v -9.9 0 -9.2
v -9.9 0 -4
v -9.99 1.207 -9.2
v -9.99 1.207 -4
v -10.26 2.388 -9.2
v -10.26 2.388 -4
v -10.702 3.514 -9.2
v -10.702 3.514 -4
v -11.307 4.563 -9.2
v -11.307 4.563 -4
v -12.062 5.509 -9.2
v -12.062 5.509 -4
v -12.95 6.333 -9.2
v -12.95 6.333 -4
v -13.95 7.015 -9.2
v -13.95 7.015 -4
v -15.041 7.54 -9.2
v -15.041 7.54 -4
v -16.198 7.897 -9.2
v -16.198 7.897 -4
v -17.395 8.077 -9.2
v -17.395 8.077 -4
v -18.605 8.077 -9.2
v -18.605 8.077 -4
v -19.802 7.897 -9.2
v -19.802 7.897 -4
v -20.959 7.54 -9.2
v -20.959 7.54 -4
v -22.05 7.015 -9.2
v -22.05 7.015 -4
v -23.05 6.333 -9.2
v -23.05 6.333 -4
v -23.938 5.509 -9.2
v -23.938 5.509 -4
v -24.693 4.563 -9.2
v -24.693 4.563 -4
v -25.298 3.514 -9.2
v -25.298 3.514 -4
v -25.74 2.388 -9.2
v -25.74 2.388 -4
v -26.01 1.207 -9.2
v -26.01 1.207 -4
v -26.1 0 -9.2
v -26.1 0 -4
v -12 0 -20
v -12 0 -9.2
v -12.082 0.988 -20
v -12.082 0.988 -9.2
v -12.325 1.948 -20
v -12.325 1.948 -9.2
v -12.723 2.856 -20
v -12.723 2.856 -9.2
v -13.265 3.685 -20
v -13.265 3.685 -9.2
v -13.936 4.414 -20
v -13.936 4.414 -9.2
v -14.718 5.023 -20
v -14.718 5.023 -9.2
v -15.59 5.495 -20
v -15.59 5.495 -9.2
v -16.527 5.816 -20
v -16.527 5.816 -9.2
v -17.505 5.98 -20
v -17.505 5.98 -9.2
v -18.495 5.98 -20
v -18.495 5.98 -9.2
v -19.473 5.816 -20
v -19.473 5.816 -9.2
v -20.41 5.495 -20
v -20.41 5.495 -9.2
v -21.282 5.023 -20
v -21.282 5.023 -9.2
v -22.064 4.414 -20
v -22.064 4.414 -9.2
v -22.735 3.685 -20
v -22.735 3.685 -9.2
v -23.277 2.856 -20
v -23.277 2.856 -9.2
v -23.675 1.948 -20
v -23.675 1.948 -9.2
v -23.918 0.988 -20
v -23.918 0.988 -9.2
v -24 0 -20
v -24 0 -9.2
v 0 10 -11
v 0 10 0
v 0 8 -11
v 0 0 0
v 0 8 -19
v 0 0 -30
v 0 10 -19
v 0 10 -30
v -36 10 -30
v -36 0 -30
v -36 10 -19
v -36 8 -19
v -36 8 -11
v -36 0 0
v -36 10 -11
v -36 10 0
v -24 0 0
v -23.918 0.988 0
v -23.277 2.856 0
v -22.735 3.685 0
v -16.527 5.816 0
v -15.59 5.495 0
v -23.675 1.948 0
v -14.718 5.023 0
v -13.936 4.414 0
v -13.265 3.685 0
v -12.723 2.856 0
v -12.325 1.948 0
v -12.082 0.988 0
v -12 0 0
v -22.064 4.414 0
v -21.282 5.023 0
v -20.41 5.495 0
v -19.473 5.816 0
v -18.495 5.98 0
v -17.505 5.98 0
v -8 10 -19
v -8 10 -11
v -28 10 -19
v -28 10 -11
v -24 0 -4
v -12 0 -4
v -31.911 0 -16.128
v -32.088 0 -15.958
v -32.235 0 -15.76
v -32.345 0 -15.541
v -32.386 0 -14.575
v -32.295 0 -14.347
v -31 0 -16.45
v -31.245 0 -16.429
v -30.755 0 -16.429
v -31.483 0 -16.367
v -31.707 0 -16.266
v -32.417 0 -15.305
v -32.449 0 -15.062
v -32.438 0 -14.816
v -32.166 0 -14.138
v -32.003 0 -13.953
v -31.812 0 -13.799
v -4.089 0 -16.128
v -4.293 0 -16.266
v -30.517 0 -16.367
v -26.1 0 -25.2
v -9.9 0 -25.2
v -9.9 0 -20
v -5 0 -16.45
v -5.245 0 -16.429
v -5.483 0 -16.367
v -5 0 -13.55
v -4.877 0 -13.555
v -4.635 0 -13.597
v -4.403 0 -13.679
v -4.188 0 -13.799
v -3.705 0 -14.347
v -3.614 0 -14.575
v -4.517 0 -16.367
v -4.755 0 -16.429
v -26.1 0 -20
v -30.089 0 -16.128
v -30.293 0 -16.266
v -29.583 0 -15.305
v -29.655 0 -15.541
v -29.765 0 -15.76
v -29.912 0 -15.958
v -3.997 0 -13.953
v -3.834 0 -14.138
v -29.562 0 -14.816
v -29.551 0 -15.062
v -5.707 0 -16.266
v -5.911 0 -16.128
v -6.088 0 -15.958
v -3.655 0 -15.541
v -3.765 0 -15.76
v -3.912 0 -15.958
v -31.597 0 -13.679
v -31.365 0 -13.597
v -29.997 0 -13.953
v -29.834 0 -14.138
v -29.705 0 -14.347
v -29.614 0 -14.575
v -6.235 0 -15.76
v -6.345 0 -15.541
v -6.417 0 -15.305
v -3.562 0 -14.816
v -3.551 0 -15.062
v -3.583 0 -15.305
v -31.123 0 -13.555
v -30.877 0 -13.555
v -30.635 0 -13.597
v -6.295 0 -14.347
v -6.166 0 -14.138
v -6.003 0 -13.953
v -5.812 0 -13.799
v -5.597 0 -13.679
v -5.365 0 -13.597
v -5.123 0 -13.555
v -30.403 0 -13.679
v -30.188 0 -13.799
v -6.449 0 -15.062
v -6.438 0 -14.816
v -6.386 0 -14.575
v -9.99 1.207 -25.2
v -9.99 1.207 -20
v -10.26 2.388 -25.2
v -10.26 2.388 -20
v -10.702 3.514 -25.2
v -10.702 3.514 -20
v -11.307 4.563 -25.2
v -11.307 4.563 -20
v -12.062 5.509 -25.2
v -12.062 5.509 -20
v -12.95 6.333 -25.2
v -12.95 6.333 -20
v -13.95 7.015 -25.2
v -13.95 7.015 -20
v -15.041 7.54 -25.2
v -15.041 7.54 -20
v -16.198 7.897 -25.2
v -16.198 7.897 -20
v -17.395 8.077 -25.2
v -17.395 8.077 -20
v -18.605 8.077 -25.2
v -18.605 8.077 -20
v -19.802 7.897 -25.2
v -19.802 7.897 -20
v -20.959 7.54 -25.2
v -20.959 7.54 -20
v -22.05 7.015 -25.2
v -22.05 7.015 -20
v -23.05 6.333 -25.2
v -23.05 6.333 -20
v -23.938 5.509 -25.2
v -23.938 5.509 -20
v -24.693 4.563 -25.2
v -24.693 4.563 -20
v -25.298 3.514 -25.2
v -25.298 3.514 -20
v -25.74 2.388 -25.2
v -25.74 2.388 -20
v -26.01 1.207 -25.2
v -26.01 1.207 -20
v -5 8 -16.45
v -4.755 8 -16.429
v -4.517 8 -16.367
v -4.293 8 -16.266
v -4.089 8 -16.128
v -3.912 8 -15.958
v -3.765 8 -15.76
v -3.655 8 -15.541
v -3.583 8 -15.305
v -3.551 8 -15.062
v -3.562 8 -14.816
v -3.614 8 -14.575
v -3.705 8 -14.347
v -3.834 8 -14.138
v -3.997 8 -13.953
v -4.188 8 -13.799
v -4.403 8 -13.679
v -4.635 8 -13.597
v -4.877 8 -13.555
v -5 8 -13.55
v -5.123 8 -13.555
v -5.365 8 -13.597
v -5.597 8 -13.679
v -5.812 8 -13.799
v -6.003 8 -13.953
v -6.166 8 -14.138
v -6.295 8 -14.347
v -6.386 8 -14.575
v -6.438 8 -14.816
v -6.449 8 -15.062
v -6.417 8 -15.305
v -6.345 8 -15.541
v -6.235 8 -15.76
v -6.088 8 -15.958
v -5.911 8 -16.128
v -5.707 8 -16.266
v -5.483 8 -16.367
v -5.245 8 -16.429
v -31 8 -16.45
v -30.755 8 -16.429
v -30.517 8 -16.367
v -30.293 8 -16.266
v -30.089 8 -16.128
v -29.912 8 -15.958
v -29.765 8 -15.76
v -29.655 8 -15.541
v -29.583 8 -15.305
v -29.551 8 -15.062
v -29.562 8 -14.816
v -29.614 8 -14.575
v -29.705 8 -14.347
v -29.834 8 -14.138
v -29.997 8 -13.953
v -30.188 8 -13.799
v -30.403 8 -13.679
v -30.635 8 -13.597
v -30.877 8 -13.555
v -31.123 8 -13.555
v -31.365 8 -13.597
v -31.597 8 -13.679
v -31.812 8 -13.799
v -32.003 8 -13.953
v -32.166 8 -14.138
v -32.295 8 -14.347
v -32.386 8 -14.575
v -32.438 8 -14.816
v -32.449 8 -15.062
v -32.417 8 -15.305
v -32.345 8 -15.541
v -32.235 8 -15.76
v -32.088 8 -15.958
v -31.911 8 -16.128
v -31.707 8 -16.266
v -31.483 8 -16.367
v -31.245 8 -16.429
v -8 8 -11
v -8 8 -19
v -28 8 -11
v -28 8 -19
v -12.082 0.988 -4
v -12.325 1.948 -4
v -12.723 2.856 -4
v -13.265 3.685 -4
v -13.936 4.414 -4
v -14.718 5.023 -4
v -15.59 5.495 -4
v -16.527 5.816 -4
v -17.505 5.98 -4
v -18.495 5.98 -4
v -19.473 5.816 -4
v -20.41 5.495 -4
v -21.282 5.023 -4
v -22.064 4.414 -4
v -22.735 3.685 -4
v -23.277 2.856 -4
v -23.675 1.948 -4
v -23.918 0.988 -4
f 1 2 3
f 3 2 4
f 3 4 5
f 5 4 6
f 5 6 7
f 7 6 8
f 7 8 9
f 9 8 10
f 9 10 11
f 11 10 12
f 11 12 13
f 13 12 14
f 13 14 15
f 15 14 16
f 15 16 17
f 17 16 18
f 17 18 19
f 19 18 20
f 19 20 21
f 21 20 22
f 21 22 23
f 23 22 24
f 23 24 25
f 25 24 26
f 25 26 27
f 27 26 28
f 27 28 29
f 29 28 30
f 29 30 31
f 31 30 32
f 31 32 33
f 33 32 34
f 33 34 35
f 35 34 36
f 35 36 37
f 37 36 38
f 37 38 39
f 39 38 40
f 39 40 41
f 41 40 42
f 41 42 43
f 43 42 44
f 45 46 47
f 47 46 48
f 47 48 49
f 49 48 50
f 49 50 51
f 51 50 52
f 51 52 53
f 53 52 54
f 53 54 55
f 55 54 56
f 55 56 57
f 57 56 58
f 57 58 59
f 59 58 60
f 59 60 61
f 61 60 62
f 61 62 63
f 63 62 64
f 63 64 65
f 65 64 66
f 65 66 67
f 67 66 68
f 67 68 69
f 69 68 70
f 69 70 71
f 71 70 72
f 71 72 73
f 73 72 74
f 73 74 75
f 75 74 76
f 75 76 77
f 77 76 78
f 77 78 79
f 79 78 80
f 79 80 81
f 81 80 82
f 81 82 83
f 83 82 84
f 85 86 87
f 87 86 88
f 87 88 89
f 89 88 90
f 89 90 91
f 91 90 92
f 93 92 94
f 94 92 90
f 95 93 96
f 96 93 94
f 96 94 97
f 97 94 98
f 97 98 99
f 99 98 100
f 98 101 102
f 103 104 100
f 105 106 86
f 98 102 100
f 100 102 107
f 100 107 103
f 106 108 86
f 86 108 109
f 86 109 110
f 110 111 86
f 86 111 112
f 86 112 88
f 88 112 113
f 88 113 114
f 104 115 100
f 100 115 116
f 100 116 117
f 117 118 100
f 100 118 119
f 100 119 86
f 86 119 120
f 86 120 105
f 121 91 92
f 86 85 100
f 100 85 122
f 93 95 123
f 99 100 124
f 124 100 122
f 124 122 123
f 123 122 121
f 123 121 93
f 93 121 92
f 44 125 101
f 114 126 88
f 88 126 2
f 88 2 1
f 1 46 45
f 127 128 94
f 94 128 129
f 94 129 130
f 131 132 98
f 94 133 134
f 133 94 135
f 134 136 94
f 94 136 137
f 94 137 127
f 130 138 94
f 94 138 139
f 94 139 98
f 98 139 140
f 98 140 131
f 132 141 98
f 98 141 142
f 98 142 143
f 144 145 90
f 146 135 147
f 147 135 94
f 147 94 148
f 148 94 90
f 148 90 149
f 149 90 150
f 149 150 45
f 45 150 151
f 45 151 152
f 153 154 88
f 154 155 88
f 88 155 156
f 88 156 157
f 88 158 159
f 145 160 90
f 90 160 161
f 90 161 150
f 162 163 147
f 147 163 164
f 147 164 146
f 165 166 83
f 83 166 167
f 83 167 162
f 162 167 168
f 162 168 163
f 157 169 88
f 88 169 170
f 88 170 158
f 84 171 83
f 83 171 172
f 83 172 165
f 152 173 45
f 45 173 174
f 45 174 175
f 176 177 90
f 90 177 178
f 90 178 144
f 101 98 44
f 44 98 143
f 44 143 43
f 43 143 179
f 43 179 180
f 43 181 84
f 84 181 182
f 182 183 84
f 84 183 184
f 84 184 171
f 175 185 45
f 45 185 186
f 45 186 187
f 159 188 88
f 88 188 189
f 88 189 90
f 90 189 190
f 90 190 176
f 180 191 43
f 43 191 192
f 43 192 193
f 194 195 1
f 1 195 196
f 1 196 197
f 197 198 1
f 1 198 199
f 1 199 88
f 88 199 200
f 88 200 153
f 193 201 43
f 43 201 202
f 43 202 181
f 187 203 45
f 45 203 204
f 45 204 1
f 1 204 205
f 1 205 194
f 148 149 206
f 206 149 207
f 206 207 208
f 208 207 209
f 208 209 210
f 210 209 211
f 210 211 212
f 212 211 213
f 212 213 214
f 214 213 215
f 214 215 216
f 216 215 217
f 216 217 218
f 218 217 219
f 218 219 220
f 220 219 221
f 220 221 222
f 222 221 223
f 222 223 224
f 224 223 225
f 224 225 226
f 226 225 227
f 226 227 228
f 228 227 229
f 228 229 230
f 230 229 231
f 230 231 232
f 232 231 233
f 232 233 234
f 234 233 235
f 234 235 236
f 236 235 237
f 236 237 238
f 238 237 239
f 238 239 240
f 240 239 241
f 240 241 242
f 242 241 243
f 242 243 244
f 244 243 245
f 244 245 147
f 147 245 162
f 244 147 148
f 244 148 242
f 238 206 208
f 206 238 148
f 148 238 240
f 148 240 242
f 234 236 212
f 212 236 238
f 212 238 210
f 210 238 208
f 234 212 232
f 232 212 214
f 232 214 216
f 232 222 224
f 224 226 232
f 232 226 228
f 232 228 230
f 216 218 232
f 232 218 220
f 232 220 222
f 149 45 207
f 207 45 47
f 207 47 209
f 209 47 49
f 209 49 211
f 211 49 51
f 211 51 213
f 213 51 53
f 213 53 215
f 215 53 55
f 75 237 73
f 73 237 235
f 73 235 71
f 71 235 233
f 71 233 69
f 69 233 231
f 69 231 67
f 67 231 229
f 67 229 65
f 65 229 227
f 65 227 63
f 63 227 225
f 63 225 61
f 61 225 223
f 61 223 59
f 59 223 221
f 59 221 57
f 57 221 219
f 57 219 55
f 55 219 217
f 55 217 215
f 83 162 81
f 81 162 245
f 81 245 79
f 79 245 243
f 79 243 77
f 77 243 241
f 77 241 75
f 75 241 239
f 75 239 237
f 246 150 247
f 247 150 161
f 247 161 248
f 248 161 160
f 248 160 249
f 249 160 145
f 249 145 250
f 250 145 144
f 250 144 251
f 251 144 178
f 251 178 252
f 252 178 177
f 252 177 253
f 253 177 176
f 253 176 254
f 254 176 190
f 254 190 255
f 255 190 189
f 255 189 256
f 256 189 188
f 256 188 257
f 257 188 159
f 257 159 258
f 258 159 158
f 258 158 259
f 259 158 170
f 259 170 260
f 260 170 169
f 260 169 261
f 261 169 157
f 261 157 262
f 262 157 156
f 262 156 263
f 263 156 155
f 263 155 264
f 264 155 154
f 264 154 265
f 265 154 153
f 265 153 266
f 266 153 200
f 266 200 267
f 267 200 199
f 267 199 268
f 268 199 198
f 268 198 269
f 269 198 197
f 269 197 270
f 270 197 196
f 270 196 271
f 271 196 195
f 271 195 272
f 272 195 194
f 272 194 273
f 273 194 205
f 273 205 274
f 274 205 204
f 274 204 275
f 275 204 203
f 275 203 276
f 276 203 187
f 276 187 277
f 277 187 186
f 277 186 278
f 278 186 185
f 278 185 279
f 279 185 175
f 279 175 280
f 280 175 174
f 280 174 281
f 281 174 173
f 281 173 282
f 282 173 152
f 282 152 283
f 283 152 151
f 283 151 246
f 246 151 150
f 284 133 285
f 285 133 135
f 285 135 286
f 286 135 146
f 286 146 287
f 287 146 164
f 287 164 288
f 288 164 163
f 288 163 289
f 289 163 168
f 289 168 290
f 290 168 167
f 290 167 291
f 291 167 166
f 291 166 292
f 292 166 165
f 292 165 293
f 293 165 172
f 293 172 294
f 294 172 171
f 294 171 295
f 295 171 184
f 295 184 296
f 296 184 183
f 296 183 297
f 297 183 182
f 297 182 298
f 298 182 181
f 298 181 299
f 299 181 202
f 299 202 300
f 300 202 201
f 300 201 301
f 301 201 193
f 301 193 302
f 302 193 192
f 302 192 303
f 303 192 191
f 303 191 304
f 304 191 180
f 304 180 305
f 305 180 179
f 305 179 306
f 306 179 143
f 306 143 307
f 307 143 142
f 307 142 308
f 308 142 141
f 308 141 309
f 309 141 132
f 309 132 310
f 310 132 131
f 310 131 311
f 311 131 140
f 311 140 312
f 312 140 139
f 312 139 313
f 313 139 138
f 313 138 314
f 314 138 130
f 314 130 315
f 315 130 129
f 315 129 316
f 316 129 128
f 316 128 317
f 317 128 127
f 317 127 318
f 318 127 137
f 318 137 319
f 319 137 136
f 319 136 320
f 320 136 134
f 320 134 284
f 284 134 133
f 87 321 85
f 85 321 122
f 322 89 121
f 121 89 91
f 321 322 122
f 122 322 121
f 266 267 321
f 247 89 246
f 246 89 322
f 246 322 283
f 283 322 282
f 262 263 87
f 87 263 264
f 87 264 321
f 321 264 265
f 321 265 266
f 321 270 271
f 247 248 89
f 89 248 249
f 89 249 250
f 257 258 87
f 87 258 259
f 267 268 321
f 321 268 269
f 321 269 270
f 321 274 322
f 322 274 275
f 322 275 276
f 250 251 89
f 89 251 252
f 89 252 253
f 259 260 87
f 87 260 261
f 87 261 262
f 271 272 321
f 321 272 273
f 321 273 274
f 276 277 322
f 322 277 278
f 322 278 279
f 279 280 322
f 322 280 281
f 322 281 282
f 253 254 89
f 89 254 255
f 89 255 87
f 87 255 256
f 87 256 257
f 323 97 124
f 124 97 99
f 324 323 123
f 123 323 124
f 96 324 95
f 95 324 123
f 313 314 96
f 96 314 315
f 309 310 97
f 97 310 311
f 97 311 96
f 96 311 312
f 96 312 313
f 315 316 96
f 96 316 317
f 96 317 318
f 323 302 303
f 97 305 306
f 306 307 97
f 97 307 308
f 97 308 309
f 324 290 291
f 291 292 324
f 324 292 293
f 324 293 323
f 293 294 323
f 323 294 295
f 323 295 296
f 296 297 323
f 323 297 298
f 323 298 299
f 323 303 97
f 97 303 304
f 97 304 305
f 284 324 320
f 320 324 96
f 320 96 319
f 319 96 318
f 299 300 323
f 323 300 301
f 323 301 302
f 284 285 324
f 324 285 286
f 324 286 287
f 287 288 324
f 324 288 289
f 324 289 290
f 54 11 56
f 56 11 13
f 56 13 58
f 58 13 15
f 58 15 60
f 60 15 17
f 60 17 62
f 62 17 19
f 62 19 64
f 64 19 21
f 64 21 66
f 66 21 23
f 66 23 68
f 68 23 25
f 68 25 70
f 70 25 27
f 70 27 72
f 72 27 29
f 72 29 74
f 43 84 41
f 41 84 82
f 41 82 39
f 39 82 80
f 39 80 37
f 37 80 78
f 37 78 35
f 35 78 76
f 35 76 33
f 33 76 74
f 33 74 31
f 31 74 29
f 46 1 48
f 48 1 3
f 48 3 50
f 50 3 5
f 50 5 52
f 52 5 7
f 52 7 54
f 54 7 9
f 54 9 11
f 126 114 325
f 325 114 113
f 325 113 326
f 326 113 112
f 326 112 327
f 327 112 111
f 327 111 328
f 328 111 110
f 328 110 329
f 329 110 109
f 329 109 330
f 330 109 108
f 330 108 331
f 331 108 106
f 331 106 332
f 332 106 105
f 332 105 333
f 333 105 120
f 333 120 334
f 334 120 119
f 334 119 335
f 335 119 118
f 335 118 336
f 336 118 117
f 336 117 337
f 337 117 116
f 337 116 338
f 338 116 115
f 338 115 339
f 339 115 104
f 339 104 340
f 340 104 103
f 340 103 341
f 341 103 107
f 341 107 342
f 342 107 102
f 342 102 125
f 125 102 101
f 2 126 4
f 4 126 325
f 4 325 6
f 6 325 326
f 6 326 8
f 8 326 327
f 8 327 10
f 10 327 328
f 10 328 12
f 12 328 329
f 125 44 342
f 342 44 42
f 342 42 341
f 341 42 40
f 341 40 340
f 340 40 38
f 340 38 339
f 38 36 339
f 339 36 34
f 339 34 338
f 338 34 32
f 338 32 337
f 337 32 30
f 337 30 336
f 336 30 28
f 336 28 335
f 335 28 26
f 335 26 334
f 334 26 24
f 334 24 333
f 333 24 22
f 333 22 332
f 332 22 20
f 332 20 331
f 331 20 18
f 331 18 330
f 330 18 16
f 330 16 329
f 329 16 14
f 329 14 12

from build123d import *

# Parameters (mm, degrees)
SKETCH_2_W          = 36
SKETCH_2_H          = 30
EXTRUDE_1_DEPTH     = 10
SKETCH_3_R          = 6
CUT_EXTRUDE_1_DEPTH = 20
SKETCH_4_R          = 8.1
CUT_EXTRUDE_2_DEPTH = 5.2
SKETCH_5_R          = 1.45
CUT_EXTRUDE_3_DEPTH = 8
SKETCH_6_W          = 8
SKETCH_6_H          = 8
CUT_EXTRUDE_4_DEPTH = 8
CUT_EXTRUDE_5_DEPTH = 9.2
EXTRUDE_2_DEPTH     = 4


with BuildPart() as part:
    # 草图2 → 凸台-拉伸1 (new body)
    with BuildSketch(Plane(origin=(0, 0, 0), x_dir=(1, 0, 0), z_dir=(0, 1, 0))):
        with Locations((-18, 15)):
            Rectangle(SKETCH_2_W, SKETCH_2_H)
    extrude(amount=EXTRUDE_1_DEPTH)

    # 草图3 → 切除-拉伸1 (cut)
    with BuildSketch(Plane.XY):
        with Locations((-18, 0)):
            Circle(SKETCH_3_R)
    extrude(amount=-CUT_EXTRUDE_1_DEPTH, mode=Mode.SUBTRACT)

    # 草图4 → 切除-拉伸2 (cut)
    with BuildSketch(Plane.XY.offset(-20)):
        with Locations((-18, 0)):
            Circle(SKETCH_4_R)
    extrude(amount=-CUT_EXTRUDE_2_DEPTH, mode=Mode.SUBTRACT)

    # 草图5 → 切除-拉伸3 (cut)
    with BuildSketch(Plane.XZ):
        with Locations(Location((-31, -15, 0), (0, 0, 270))):
            Circle(SKETCH_5_R)
        with Locations(Location((-5, -15, 0), (0, 0, 90))):
            Circle(SKETCH_5_R)
    extrude(amount=-CUT_EXTRUDE_3_DEPTH, mode=Mode.SUBTRACT)

    # 草图6 → 切除-拉伸4 (cut)
    with BuildSketch(Plane.XZ.offset(-8)):
        with Locations((-32, -15)):
            Rectangle(SKETCH_6_W, SKETCH_6_H)
        with Locations((-4, -15)):
            Rectangle(SKETCH_6_W, SKETCH_6_H)
    extrude(amount=-CUT_EXTRUDE_4_DEPTH, mode=Mode.SUBTRACT)

    # 草图7 → 切除-拉伸5 (cut)
    with BuildSketch(Plane.XY):
        with BuildLine():
            Line((-26.1, 0), (-9.9, 0))
            ThreePointArc((-9.9, 0), (-18, 8.1), (-26.1, 0))
        make_face()
    extrude(amount=-CUT_EXTRUDE_5_DEPTH, mode=Mode.SUBTRACT)

    # 草图8 → 凸台-拉伸2 (add)
    with BuildSketch(Plane.XY):
        with BuildLine():
            Line((-12, 0), (-9.9, 0))
            ThreePointArc((-9.9, 0), (-18, 8.1), (-26.1, 0))
            Line((-26.1, 0), (-24, 0))
            ThreePointArc((-24, 0), (-18, 6), (-12, 0))
        make_face()
    extrude(amount=-EXTRUDE_2_DEPTH)


solid = part.part
